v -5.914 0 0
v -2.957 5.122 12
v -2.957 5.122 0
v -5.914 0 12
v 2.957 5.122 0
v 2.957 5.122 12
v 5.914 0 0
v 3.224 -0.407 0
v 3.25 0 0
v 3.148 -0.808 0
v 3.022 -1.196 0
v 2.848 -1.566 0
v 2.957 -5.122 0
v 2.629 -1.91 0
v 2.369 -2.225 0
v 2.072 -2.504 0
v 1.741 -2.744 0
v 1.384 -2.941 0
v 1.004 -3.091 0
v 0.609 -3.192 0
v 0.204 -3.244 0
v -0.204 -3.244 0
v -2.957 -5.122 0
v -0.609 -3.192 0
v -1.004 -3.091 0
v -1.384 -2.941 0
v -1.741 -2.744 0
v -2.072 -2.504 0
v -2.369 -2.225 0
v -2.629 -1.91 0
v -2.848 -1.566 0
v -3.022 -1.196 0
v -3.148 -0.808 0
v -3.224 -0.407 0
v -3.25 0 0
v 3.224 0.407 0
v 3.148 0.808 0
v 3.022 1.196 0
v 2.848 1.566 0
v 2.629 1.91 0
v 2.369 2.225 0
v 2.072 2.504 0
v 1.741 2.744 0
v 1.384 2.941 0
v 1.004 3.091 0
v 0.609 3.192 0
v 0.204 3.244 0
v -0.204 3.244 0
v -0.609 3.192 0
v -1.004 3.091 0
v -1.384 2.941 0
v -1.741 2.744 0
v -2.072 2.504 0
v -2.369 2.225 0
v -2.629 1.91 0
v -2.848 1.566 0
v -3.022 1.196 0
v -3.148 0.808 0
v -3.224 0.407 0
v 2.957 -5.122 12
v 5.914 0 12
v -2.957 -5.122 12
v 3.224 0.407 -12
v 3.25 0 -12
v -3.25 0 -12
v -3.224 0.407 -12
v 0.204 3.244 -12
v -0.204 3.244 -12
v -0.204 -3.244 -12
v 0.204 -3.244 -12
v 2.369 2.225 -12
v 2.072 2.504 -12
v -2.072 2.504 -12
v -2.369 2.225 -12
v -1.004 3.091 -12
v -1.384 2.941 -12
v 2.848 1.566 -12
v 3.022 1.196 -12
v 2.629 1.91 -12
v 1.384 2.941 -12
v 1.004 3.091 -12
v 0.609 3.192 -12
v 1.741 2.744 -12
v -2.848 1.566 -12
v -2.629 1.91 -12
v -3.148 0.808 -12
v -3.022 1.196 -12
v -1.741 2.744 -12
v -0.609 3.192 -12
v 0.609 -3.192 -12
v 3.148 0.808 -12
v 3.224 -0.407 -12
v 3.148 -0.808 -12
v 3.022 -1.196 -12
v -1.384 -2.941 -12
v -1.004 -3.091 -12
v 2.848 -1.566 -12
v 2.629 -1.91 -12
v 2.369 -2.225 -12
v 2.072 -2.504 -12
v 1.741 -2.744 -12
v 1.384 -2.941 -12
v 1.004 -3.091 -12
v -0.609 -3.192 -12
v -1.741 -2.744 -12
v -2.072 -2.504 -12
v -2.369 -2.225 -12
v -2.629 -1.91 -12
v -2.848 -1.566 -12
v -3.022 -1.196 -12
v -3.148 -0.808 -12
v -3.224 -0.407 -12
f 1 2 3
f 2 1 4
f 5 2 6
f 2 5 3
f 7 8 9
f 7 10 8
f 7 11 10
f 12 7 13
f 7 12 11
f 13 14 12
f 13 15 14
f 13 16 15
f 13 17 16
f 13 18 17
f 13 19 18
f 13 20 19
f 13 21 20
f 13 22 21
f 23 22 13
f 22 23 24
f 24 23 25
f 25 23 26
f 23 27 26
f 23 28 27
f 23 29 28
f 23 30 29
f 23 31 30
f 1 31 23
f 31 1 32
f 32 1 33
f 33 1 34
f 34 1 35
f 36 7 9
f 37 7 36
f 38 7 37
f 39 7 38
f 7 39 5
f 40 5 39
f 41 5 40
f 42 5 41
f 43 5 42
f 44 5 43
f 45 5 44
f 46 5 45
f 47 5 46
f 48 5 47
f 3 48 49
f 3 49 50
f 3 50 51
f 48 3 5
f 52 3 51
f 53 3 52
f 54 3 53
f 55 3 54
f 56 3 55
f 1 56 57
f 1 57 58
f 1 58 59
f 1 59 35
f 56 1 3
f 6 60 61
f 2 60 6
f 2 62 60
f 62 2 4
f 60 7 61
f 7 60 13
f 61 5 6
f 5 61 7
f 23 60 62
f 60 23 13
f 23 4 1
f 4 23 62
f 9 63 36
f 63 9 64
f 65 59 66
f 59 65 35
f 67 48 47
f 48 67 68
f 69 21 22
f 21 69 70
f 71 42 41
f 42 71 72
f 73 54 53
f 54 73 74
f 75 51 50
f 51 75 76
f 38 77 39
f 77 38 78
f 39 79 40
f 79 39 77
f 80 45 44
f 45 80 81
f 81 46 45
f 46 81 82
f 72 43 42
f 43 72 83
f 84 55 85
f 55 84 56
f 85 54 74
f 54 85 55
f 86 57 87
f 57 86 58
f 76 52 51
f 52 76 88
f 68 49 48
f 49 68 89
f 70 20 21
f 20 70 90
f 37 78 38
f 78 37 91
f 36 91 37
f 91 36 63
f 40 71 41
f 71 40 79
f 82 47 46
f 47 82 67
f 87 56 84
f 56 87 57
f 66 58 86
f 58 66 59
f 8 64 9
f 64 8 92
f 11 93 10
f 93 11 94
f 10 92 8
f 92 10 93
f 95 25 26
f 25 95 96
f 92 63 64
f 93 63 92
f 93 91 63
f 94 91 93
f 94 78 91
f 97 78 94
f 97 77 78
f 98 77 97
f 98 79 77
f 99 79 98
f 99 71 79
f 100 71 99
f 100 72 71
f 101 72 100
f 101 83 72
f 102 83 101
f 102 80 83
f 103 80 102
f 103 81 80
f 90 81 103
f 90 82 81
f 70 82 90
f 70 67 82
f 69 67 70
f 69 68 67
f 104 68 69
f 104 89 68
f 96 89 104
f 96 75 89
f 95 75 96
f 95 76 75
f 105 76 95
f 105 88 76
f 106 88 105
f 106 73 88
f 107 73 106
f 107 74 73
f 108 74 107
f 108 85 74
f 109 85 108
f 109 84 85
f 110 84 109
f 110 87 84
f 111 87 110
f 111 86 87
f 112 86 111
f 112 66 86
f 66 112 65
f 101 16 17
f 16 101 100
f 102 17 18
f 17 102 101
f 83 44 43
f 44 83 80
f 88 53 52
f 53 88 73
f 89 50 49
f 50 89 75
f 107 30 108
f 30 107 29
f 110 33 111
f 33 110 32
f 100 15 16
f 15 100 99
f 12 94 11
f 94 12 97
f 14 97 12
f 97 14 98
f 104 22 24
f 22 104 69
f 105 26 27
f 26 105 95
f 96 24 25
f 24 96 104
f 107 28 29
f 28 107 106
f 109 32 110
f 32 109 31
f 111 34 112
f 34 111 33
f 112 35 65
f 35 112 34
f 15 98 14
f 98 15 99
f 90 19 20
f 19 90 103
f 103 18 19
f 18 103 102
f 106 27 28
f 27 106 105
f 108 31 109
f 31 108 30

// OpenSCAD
$fn = 50;


difference() {
	union() {
		translate(v = [0, 0, 0]) {
			rotate(a = [0, 0, 0]) {
				translate(v = [0, 0, 0]) {
					rotate(a = [0, 0, 0]) {
						linear_extrude(height = 12) {
							polygon(points = [[5.9142500000, 0.0000000000], [2.9571250000, 5.1218907443], [-2.9571250000, 5.1218907443], [-5.9142500000, 0.0000000000], [-2.9571250000, -5.1218907443], [2.9571250000, -5.1218907443]]);
						}
					}
				}
			}
		}
		translate(v = [0, 0, -12]) {
			rotate(a = [0, 0, 0]) {
				cylinder(h = 12, r = 3.2500000000);
			}
		}
	}
	union();
}
